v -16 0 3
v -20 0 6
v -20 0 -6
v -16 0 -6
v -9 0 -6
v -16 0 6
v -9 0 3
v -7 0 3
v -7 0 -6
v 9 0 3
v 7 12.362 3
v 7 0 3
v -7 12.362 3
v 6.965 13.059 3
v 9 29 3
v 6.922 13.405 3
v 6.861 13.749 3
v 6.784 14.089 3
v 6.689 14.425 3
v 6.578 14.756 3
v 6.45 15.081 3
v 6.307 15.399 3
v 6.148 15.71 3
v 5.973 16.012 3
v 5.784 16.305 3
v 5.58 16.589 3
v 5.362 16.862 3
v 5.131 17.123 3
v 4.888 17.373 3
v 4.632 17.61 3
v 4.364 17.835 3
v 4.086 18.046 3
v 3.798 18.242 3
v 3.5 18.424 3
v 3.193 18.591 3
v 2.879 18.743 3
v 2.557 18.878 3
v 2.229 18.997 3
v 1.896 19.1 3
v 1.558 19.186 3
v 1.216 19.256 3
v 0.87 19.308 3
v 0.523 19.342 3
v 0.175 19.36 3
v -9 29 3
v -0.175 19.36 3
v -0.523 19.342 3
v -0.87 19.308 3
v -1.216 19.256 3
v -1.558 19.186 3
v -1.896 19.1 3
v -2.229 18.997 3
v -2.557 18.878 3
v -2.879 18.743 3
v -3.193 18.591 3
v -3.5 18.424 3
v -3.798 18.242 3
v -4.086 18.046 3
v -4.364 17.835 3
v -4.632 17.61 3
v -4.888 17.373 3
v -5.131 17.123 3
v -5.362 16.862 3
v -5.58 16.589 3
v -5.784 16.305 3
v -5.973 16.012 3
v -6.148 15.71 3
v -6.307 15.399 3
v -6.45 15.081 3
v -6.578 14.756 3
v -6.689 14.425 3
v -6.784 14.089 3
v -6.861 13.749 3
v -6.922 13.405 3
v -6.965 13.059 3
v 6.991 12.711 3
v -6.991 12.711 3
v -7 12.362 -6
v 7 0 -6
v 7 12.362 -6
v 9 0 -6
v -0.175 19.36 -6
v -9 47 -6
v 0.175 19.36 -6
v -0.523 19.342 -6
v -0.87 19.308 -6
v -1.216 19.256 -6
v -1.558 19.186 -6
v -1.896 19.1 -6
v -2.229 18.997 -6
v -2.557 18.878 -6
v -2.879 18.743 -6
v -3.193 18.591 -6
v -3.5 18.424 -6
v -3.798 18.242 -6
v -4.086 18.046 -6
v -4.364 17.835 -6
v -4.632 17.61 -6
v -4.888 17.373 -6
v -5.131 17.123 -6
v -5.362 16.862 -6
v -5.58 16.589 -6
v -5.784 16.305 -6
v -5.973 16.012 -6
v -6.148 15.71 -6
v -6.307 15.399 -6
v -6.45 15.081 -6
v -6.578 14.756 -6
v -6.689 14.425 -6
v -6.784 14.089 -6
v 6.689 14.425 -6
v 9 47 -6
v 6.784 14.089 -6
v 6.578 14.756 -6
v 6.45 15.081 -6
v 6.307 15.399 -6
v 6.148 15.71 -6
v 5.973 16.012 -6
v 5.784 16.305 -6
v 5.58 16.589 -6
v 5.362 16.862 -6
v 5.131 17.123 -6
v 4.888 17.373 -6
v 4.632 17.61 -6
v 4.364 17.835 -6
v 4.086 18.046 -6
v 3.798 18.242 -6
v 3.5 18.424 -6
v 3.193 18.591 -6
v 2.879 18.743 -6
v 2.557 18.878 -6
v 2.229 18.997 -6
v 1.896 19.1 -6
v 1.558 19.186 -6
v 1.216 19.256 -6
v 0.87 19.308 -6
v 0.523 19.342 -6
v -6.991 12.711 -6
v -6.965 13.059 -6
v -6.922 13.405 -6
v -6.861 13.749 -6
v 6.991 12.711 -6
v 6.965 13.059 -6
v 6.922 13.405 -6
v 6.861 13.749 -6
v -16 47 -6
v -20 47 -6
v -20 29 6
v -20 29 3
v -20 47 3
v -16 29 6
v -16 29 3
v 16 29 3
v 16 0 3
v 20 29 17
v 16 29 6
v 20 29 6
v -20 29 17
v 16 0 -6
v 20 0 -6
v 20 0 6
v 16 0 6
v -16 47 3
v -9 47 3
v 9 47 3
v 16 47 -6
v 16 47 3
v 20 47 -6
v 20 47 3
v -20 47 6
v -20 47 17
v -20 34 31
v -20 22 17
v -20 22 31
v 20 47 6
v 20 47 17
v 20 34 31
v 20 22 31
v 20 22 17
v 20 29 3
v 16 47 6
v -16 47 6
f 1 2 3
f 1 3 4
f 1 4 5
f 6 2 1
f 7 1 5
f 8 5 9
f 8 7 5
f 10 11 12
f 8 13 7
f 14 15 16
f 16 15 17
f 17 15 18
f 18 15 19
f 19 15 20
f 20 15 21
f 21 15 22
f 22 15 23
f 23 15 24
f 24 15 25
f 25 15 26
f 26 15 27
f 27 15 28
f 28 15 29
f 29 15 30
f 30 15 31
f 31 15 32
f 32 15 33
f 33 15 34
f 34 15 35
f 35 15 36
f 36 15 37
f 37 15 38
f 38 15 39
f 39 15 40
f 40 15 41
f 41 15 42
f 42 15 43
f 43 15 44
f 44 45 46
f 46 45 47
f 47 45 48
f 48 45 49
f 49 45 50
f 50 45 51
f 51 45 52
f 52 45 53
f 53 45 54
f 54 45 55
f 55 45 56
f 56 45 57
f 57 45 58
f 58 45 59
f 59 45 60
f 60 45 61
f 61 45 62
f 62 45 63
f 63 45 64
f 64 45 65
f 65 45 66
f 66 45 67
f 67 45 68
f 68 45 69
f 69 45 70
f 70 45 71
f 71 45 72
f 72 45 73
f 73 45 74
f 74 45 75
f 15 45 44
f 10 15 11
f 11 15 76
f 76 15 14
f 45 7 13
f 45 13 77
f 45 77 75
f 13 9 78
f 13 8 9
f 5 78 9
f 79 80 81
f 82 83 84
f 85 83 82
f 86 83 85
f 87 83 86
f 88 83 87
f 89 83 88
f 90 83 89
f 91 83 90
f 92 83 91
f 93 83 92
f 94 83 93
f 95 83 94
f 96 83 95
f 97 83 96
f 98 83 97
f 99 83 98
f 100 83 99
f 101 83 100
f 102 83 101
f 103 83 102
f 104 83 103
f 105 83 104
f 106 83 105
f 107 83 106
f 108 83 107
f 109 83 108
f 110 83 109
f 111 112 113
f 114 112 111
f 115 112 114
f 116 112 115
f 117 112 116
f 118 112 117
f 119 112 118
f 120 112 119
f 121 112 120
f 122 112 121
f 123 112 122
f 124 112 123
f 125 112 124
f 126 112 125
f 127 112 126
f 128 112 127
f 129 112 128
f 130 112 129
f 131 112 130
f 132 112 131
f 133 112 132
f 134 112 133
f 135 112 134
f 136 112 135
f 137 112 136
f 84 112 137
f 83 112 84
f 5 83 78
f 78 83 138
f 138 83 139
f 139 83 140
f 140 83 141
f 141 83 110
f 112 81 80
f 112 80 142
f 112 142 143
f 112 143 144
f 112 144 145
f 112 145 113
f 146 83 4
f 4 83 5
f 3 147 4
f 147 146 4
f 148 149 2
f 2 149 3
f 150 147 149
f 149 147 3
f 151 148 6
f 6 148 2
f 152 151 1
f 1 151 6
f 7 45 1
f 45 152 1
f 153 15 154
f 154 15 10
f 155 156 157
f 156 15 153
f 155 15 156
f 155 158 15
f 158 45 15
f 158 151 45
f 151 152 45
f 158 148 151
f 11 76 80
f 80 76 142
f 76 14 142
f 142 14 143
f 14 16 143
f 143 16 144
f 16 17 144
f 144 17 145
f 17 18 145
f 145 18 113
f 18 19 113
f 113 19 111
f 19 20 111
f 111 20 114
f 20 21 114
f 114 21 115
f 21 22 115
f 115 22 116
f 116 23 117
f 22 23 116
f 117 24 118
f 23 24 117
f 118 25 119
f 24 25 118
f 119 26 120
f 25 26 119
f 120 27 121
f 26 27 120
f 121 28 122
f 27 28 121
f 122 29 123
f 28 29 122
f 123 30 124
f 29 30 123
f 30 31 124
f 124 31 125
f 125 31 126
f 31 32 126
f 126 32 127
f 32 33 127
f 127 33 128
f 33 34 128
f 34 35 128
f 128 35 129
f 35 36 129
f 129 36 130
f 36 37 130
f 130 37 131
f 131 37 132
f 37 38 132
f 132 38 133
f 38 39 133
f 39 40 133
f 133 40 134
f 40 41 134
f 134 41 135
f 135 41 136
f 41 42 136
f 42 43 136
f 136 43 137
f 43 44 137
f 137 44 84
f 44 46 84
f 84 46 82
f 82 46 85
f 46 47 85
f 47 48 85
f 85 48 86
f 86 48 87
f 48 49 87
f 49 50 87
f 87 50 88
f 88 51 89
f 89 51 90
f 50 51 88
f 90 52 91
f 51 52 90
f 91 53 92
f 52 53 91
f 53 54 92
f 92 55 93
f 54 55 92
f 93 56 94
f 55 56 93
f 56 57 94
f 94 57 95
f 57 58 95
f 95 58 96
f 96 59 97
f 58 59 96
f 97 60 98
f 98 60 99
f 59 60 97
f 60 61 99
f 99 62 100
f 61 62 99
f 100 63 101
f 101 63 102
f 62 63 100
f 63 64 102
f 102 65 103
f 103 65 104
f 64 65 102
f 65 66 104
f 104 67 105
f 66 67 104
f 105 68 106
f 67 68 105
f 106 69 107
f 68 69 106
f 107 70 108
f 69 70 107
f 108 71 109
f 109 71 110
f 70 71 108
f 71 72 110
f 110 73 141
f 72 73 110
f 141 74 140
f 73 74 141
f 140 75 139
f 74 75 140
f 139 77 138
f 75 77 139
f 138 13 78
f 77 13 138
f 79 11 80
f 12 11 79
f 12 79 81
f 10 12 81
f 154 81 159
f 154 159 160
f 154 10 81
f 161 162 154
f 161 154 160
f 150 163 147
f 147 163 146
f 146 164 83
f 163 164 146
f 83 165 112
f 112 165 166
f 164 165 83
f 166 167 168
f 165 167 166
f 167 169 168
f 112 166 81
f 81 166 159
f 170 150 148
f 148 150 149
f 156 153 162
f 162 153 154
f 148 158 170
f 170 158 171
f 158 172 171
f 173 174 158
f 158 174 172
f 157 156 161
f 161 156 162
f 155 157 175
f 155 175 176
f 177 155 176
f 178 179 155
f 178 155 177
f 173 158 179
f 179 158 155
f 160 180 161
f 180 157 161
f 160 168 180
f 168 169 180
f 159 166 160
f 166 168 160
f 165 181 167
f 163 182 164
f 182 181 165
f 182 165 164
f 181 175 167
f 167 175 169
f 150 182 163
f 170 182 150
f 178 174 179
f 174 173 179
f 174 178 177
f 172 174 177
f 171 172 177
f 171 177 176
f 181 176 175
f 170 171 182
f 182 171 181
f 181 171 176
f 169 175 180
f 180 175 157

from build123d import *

# Parameters (mm, degrees)
PAD_DEPTH         = 20
POCKET_DEPTH      = 6.001
POCKET_DEPTH_BACK = -31.001


with BuildPart() as part:
    # AdditivePipe: sweep along a path in Sketch
    with BuildLine(Plane.XY) as additivepipe_path:
        Line((0, 0), (0, 47))
    # Sketch001 → AdditivePipe (sweep)
    with BuildSketch(Plane.XZ):
        Polygon((-20, 6), (-20, -6), (-16, -6), (-9, -6), (9, -6), (16, -6), (20, -6), (20, 6), (16, 6), (16, 3), (9, 3), (-9, 3), (-16, 3), (-16, 6), align=None)
    sweep(path=additivepipe_path.line)

    # Sketch002 → Pad (new body, symmetric)
    with BuildSketch(Plane.YZ):
        Polygon((47, 6), (47, 17), (34, 31), (22, 31), (22, 17), (29, 17), (29, 3), (47, 3), align=None)
    extrude(amount=PAD_DEPTH, both=True)

    # Sketch003 → Pocket (cut, two sides)
    with BuildSketch(Plane.XY) as pocket_sk:
        with BuildLine():
            ThreePointArc((7, 12.362), (0, 19.362), (-7, 12.362))
            Line((-7, 12.362), (-7, 0))
            Line((-7, 0), (7, 0))
            Line((7, 12.362), (7, 0))
        make_face()
    extrude(amount=-POCKET_DEPTH, mode=Mode.SUBTRACT)
    extrude(pocket_sk.sketch, amount=-POCKET_DEPTH_BACK, mode=Mode.SUBTRACT)


solid = part.part
